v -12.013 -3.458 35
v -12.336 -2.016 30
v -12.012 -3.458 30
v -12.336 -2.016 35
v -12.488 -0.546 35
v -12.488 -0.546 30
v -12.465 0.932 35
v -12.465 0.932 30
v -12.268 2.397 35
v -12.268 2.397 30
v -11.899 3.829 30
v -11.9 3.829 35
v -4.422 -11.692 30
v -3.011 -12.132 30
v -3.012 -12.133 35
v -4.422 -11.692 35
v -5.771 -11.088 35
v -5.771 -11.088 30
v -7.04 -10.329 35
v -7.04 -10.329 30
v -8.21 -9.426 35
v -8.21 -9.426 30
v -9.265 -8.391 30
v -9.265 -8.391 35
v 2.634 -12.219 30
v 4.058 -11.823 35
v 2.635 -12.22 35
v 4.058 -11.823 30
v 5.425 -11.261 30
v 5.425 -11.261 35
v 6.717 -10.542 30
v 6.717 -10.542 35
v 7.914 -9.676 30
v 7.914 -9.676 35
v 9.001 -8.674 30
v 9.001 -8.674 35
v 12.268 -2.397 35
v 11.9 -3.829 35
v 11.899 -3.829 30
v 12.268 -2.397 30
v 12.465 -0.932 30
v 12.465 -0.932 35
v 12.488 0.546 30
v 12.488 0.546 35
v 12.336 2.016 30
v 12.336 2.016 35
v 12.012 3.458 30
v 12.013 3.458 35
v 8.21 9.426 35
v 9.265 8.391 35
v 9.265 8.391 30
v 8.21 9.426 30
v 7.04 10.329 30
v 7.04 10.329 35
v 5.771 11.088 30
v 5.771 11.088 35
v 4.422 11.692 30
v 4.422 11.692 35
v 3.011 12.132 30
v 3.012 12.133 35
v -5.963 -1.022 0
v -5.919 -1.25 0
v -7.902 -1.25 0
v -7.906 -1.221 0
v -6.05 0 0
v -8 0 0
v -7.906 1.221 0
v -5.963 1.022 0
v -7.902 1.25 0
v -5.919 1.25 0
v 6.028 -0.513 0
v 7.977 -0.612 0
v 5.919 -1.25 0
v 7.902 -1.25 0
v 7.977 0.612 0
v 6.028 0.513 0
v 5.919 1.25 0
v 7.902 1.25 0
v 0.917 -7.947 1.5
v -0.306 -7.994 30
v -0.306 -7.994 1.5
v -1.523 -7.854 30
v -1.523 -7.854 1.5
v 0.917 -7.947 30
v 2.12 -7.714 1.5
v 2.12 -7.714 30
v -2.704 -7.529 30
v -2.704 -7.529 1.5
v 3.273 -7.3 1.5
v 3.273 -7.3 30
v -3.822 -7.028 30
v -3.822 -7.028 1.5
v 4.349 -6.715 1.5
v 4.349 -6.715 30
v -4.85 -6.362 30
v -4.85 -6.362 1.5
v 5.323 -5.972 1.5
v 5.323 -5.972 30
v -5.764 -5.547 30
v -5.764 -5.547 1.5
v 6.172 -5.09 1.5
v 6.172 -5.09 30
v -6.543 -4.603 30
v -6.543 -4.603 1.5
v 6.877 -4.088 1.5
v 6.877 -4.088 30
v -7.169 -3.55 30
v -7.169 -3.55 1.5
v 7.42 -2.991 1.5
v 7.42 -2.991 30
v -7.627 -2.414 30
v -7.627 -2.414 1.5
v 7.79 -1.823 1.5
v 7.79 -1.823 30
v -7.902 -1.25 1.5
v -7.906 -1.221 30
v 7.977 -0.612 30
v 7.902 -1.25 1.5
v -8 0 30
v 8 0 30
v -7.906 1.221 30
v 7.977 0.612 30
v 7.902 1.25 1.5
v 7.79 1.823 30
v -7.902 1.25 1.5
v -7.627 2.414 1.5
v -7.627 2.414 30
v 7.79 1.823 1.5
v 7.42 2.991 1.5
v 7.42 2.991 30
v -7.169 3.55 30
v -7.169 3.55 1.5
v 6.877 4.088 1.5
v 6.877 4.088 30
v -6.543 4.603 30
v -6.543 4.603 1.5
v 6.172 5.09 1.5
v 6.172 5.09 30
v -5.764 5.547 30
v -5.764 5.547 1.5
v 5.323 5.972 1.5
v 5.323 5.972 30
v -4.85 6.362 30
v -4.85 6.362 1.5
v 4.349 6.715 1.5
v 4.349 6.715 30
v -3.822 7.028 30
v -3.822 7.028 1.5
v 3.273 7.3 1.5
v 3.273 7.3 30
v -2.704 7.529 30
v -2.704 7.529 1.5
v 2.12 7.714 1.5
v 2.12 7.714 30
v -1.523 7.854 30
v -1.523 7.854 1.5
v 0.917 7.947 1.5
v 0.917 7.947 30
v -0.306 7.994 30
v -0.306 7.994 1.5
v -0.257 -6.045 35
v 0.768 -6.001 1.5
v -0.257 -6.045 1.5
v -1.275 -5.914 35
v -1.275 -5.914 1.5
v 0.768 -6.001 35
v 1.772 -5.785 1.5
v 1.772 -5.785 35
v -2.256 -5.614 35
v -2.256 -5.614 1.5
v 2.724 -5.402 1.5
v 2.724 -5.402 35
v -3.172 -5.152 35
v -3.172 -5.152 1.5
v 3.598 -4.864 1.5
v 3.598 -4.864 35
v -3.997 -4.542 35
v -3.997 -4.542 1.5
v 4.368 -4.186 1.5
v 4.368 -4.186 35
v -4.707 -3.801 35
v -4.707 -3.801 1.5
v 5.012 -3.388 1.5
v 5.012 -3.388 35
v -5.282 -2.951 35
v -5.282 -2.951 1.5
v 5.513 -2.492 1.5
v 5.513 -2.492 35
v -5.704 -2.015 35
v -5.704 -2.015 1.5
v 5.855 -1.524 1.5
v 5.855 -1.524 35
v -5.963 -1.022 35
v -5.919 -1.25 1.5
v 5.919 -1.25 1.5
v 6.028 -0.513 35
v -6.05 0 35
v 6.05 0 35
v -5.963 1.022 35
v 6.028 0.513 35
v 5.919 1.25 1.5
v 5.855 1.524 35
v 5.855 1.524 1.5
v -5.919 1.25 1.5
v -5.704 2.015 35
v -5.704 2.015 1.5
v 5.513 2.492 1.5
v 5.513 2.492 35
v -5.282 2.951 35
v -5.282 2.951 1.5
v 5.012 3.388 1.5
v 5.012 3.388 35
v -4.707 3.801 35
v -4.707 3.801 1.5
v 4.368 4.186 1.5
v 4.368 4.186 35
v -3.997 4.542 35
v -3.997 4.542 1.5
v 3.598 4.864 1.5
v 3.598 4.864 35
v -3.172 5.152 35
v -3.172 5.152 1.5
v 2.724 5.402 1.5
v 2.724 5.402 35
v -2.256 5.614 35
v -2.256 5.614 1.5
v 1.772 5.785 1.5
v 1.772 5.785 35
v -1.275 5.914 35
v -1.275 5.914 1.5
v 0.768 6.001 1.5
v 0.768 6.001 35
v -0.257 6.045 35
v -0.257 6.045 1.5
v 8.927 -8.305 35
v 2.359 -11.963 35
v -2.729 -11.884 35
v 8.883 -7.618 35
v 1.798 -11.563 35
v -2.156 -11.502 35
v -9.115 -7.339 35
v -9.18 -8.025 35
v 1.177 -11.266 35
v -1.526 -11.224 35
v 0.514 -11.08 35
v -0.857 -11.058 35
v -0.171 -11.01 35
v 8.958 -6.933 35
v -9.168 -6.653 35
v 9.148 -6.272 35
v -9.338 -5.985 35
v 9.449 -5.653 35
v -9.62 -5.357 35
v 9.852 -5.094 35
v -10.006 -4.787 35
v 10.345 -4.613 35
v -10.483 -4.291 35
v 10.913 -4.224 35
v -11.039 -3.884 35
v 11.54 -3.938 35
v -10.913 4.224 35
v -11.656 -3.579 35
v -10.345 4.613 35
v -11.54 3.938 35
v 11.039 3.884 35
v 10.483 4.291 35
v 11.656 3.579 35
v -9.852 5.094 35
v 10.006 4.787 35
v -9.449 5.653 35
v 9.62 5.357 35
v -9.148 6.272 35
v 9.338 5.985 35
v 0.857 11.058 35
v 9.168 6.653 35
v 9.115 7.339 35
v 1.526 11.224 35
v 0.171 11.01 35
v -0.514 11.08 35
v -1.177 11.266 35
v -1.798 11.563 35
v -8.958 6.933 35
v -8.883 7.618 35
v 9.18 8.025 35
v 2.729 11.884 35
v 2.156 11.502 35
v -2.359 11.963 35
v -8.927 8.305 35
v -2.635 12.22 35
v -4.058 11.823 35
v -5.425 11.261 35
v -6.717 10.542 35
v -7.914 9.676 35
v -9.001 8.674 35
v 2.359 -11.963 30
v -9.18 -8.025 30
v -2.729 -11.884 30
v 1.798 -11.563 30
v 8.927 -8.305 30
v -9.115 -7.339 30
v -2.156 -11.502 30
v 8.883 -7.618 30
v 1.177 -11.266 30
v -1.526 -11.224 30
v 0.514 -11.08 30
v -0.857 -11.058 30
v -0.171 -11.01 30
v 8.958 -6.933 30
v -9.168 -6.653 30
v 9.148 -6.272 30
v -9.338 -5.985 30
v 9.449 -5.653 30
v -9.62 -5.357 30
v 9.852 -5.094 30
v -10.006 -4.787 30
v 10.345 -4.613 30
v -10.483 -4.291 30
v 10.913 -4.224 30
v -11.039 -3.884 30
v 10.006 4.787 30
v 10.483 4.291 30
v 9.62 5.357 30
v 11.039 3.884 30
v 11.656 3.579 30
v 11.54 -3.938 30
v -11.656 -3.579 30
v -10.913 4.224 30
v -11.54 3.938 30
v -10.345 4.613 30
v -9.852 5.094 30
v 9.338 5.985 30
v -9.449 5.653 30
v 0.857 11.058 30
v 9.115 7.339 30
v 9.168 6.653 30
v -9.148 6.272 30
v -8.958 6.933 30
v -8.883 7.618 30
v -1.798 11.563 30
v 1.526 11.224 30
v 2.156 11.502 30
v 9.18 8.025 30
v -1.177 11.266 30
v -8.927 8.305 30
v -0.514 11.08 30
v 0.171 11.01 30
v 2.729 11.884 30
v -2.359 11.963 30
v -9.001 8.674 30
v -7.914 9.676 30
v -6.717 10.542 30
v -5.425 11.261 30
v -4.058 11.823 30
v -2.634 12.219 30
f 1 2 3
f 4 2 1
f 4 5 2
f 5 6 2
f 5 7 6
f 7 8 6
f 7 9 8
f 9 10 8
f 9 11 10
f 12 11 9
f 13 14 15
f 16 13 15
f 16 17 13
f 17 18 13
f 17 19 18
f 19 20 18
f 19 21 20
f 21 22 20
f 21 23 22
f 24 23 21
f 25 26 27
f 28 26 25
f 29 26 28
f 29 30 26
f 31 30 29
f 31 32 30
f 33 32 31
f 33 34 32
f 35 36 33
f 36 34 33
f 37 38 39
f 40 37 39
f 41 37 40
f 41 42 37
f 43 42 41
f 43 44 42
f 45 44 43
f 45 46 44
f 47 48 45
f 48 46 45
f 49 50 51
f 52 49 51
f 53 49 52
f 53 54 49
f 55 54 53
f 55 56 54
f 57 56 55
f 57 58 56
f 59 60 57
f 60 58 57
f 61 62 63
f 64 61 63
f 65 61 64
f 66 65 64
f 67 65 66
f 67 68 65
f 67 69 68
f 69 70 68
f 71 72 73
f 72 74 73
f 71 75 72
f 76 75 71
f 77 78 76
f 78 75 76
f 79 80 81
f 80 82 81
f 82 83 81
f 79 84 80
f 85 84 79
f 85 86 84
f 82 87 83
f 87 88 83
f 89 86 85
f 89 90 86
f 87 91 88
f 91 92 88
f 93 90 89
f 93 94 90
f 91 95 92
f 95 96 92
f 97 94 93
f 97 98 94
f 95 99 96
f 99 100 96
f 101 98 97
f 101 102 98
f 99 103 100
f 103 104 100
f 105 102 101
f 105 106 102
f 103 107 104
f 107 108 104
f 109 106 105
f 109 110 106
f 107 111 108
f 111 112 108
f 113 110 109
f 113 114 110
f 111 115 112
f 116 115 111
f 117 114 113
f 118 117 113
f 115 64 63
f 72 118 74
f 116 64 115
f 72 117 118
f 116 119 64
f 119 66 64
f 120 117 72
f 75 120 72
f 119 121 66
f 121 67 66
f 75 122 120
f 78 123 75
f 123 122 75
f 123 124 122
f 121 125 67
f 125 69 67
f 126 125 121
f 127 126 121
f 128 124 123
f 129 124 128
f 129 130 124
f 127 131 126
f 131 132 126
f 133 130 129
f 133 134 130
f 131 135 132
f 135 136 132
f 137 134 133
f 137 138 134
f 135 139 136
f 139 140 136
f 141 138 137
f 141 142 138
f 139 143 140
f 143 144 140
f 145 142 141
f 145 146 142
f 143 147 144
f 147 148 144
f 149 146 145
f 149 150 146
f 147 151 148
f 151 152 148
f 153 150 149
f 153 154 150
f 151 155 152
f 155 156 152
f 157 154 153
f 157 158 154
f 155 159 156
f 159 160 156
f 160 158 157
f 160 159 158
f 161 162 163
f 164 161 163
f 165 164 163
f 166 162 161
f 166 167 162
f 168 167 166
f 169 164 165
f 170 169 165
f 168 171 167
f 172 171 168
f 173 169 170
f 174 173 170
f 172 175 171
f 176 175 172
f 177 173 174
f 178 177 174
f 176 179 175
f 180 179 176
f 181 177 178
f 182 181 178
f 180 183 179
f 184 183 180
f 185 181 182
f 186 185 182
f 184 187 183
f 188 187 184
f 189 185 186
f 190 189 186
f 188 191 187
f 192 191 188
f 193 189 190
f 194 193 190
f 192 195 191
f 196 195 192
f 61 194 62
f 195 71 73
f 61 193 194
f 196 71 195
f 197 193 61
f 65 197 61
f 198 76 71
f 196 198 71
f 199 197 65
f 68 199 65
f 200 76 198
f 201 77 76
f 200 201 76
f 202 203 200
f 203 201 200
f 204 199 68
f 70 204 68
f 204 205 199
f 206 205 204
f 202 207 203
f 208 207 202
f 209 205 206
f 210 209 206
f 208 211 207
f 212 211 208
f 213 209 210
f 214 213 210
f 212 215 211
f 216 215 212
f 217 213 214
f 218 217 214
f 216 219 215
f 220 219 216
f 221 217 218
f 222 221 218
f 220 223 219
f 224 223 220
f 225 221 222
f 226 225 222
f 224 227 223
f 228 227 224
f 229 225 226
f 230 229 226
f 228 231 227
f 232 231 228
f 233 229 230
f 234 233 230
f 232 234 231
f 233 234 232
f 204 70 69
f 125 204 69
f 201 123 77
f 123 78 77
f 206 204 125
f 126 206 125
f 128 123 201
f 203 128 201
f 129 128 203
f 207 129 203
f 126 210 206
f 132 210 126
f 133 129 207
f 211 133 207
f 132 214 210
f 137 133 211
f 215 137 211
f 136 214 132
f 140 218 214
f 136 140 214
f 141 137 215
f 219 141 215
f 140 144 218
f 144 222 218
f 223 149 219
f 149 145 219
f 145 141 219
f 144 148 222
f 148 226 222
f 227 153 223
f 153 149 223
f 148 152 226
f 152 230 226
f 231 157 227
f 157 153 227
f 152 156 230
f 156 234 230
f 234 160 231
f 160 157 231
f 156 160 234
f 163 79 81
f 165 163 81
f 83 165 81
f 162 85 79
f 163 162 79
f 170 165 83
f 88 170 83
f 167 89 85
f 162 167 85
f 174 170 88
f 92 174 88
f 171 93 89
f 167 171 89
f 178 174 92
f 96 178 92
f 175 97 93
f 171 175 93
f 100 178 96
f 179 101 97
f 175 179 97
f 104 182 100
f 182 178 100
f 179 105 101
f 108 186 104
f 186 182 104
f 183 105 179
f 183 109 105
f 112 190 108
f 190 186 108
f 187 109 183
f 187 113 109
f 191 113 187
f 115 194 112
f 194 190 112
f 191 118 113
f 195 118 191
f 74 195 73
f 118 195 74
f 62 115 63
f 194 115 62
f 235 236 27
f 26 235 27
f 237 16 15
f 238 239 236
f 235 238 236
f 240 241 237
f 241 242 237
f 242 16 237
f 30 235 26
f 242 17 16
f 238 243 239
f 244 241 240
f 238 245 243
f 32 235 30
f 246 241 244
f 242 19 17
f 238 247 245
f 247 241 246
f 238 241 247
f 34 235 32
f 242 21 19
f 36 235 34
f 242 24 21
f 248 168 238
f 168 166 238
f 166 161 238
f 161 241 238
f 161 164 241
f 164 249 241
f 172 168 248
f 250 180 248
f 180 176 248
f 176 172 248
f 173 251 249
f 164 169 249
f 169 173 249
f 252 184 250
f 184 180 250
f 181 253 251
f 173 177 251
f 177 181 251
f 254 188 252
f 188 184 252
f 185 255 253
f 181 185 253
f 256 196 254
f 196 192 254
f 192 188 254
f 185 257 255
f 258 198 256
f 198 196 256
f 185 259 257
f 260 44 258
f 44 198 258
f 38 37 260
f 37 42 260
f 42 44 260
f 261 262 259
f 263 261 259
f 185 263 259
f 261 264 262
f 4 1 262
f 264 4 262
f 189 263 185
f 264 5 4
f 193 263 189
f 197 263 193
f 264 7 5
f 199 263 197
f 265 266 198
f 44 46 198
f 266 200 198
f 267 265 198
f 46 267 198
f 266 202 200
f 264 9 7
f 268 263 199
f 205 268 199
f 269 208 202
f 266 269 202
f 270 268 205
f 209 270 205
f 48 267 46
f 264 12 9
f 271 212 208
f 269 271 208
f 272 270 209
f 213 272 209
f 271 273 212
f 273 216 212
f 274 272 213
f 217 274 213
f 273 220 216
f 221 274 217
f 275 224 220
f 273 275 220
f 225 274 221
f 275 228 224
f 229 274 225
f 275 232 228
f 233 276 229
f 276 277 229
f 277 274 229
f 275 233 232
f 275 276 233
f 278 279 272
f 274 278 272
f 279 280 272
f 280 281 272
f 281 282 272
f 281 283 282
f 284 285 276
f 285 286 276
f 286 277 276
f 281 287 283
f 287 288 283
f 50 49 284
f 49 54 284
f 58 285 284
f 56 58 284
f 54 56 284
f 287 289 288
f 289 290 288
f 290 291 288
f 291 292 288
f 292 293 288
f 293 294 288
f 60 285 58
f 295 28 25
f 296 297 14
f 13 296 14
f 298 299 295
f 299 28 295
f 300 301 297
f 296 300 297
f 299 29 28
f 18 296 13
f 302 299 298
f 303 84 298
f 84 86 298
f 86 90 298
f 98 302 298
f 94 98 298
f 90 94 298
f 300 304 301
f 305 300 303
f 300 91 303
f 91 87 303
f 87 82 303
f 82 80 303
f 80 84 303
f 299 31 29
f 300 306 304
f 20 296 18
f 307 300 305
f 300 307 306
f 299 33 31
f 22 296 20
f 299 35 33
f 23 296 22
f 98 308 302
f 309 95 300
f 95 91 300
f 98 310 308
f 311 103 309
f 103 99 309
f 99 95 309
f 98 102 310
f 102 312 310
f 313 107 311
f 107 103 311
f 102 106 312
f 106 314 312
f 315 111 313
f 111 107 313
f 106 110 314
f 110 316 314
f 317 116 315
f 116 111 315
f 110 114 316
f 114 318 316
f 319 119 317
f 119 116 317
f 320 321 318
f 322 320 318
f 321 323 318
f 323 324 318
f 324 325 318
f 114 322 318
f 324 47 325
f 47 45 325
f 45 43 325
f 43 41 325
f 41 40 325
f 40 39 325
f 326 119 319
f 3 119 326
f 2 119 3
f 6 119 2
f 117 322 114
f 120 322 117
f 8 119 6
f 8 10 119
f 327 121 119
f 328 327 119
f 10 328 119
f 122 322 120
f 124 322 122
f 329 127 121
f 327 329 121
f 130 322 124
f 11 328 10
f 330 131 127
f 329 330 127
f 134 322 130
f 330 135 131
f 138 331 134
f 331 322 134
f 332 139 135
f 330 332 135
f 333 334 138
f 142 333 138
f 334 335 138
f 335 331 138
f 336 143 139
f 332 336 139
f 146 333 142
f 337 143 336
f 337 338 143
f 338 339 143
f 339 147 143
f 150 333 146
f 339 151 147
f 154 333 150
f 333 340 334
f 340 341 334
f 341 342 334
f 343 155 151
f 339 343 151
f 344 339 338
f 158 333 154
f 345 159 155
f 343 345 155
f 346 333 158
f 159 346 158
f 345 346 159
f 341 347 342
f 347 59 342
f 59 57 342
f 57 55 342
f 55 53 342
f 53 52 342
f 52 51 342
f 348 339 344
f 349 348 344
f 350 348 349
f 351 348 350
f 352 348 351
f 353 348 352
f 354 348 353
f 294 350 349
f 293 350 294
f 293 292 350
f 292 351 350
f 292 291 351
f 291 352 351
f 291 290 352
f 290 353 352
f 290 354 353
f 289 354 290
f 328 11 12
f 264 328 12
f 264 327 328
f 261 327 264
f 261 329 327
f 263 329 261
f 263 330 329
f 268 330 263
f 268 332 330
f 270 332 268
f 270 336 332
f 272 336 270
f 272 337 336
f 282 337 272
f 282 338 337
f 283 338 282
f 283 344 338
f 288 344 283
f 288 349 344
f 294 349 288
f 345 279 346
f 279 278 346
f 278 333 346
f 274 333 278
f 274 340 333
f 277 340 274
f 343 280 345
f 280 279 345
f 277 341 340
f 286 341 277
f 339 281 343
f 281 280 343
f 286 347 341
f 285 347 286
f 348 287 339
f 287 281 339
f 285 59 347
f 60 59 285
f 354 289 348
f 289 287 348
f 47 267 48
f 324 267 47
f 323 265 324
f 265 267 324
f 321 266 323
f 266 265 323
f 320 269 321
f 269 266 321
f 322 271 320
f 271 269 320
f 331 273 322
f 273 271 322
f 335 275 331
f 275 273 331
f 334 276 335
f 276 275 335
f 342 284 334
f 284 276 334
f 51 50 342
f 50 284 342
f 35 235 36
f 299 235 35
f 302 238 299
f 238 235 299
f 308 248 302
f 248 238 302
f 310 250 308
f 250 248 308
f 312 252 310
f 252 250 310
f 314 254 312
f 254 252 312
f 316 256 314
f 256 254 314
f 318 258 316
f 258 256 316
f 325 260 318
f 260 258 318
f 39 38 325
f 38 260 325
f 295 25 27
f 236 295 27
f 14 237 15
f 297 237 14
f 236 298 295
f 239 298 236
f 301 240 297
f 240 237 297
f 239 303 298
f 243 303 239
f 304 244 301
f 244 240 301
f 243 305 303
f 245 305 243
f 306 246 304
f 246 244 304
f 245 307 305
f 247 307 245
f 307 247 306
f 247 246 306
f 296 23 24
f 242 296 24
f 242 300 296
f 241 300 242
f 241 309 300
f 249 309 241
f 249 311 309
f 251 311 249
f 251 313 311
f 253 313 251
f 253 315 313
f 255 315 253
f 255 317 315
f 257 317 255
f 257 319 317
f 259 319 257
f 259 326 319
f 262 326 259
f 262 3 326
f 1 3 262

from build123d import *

# Parameters (mm, degrees)
SKETCH1_R               = 8
SKETCH1_R_2             = 6.05
BOSS_EXTRUDE1_DEPTH     = 30
CUT_EXTRUDE1_DEPTH      = 33.062439084
CUT_EXTRUDE1_DEPTH_BACK = 33.062439084
SKETCH2_W               = 6.75
SKETCH2_H               = 1.5
SKETCH3_R               = 12.5
SKETCH3_R_2             = 6.05
BOSS_EXTRUDE2_DEPTH     = 5
CUT_EXTRUDE2_DEPTH      = 40.210967853
CUT_EXTRUDE2_DEPTH_BACK = 40.210967853
SKETCH4_R               = 4


with BuildPart() as part:
    # Sketch1 → Boss-Extrude1 (new body)
    with BuildSketch(Plane(origin=(0, 0, 0), x_dir=(0, 1, 0), z_dir=(0, 0, 1))):
        with Locations(Location((0, 0, 0), (0, 0, 270))):
            Circle(SKETCH1_R)
        with Locations(Location((0, 0, 0), (0, 0, 270))):
            Circle(SKETCH1_R_2, mode=Mode.SUBTRACT)
    extrude(amount=BOSS_EXTRUDE1_DEPTH)

    # Sketch2 → Cut-Extrude1 (cut, two sides: drawn at the far end of the back side and taken through both)
    with BuildSketch(Plane.YZ.offset(-CUT_EXTRUDE1_DEPTH_BACK)):
        with Locations((-4.625, 0.75)):
            Rectangle(SKETCH2_W, SKETCH2_H)
        with Locations((4.625, 0.75)):
            Rectangle(SKETCH2_W, SKETCH2_H)
    extrude(amount=CUT_EXTRUDE1_DEPTH + CUT_EXTRUDE1_DEPTH_BACK, mode=Mode.SUBTRACT)

    # Sketch3 → Boss-Extrude2 (add)
    with BuildSketch(Plane.XY.offset(30)):
        Circle(SKETCH3_R)
        with Locations(Location((0, 0, 0), (0, 0, 168.076144872))):
            Circle(SKETCH3_R_2, mode=Mode.SUBTRACT)
    extrude(amount=BOSS_EXTRUDE2_DEPTH)

    # Sketch4 → Cut-Extrude2 (cut, two sides: drawn at the far end of the back side and taken through both)
    with BuildSketch(Plane.XY.offset(35).offset(-CUT_EXTRUDE2_DEPTH_BACK)):
        with Locations((-12.882183606, 7.706015759)):
            Circle(SKETCH4_R)
        with Locations((0.232513607, 15.009306138)):
            Circle(SKETCH4_R)
        with Locations((13.114697212, 7.303290379)):
            Circle(SKETCH4_R)
        with Locations((12.882183606, -7.706015759)):
            Circle(SKETCH4_R)
        with Locations((-0.232513607, -15.009306138)):
            Circle(SKETCH4_R)
        with Locations((-13.114697212, -7.303290379)):
            Circle(SKETCH4_R)
    extrude(amount=CUT_EXTRUDE2_DEPTH + CUT_EXTRUDE2_DEPTH_BACK, mode=Mode.SUBTRACT)


solid = part.part
